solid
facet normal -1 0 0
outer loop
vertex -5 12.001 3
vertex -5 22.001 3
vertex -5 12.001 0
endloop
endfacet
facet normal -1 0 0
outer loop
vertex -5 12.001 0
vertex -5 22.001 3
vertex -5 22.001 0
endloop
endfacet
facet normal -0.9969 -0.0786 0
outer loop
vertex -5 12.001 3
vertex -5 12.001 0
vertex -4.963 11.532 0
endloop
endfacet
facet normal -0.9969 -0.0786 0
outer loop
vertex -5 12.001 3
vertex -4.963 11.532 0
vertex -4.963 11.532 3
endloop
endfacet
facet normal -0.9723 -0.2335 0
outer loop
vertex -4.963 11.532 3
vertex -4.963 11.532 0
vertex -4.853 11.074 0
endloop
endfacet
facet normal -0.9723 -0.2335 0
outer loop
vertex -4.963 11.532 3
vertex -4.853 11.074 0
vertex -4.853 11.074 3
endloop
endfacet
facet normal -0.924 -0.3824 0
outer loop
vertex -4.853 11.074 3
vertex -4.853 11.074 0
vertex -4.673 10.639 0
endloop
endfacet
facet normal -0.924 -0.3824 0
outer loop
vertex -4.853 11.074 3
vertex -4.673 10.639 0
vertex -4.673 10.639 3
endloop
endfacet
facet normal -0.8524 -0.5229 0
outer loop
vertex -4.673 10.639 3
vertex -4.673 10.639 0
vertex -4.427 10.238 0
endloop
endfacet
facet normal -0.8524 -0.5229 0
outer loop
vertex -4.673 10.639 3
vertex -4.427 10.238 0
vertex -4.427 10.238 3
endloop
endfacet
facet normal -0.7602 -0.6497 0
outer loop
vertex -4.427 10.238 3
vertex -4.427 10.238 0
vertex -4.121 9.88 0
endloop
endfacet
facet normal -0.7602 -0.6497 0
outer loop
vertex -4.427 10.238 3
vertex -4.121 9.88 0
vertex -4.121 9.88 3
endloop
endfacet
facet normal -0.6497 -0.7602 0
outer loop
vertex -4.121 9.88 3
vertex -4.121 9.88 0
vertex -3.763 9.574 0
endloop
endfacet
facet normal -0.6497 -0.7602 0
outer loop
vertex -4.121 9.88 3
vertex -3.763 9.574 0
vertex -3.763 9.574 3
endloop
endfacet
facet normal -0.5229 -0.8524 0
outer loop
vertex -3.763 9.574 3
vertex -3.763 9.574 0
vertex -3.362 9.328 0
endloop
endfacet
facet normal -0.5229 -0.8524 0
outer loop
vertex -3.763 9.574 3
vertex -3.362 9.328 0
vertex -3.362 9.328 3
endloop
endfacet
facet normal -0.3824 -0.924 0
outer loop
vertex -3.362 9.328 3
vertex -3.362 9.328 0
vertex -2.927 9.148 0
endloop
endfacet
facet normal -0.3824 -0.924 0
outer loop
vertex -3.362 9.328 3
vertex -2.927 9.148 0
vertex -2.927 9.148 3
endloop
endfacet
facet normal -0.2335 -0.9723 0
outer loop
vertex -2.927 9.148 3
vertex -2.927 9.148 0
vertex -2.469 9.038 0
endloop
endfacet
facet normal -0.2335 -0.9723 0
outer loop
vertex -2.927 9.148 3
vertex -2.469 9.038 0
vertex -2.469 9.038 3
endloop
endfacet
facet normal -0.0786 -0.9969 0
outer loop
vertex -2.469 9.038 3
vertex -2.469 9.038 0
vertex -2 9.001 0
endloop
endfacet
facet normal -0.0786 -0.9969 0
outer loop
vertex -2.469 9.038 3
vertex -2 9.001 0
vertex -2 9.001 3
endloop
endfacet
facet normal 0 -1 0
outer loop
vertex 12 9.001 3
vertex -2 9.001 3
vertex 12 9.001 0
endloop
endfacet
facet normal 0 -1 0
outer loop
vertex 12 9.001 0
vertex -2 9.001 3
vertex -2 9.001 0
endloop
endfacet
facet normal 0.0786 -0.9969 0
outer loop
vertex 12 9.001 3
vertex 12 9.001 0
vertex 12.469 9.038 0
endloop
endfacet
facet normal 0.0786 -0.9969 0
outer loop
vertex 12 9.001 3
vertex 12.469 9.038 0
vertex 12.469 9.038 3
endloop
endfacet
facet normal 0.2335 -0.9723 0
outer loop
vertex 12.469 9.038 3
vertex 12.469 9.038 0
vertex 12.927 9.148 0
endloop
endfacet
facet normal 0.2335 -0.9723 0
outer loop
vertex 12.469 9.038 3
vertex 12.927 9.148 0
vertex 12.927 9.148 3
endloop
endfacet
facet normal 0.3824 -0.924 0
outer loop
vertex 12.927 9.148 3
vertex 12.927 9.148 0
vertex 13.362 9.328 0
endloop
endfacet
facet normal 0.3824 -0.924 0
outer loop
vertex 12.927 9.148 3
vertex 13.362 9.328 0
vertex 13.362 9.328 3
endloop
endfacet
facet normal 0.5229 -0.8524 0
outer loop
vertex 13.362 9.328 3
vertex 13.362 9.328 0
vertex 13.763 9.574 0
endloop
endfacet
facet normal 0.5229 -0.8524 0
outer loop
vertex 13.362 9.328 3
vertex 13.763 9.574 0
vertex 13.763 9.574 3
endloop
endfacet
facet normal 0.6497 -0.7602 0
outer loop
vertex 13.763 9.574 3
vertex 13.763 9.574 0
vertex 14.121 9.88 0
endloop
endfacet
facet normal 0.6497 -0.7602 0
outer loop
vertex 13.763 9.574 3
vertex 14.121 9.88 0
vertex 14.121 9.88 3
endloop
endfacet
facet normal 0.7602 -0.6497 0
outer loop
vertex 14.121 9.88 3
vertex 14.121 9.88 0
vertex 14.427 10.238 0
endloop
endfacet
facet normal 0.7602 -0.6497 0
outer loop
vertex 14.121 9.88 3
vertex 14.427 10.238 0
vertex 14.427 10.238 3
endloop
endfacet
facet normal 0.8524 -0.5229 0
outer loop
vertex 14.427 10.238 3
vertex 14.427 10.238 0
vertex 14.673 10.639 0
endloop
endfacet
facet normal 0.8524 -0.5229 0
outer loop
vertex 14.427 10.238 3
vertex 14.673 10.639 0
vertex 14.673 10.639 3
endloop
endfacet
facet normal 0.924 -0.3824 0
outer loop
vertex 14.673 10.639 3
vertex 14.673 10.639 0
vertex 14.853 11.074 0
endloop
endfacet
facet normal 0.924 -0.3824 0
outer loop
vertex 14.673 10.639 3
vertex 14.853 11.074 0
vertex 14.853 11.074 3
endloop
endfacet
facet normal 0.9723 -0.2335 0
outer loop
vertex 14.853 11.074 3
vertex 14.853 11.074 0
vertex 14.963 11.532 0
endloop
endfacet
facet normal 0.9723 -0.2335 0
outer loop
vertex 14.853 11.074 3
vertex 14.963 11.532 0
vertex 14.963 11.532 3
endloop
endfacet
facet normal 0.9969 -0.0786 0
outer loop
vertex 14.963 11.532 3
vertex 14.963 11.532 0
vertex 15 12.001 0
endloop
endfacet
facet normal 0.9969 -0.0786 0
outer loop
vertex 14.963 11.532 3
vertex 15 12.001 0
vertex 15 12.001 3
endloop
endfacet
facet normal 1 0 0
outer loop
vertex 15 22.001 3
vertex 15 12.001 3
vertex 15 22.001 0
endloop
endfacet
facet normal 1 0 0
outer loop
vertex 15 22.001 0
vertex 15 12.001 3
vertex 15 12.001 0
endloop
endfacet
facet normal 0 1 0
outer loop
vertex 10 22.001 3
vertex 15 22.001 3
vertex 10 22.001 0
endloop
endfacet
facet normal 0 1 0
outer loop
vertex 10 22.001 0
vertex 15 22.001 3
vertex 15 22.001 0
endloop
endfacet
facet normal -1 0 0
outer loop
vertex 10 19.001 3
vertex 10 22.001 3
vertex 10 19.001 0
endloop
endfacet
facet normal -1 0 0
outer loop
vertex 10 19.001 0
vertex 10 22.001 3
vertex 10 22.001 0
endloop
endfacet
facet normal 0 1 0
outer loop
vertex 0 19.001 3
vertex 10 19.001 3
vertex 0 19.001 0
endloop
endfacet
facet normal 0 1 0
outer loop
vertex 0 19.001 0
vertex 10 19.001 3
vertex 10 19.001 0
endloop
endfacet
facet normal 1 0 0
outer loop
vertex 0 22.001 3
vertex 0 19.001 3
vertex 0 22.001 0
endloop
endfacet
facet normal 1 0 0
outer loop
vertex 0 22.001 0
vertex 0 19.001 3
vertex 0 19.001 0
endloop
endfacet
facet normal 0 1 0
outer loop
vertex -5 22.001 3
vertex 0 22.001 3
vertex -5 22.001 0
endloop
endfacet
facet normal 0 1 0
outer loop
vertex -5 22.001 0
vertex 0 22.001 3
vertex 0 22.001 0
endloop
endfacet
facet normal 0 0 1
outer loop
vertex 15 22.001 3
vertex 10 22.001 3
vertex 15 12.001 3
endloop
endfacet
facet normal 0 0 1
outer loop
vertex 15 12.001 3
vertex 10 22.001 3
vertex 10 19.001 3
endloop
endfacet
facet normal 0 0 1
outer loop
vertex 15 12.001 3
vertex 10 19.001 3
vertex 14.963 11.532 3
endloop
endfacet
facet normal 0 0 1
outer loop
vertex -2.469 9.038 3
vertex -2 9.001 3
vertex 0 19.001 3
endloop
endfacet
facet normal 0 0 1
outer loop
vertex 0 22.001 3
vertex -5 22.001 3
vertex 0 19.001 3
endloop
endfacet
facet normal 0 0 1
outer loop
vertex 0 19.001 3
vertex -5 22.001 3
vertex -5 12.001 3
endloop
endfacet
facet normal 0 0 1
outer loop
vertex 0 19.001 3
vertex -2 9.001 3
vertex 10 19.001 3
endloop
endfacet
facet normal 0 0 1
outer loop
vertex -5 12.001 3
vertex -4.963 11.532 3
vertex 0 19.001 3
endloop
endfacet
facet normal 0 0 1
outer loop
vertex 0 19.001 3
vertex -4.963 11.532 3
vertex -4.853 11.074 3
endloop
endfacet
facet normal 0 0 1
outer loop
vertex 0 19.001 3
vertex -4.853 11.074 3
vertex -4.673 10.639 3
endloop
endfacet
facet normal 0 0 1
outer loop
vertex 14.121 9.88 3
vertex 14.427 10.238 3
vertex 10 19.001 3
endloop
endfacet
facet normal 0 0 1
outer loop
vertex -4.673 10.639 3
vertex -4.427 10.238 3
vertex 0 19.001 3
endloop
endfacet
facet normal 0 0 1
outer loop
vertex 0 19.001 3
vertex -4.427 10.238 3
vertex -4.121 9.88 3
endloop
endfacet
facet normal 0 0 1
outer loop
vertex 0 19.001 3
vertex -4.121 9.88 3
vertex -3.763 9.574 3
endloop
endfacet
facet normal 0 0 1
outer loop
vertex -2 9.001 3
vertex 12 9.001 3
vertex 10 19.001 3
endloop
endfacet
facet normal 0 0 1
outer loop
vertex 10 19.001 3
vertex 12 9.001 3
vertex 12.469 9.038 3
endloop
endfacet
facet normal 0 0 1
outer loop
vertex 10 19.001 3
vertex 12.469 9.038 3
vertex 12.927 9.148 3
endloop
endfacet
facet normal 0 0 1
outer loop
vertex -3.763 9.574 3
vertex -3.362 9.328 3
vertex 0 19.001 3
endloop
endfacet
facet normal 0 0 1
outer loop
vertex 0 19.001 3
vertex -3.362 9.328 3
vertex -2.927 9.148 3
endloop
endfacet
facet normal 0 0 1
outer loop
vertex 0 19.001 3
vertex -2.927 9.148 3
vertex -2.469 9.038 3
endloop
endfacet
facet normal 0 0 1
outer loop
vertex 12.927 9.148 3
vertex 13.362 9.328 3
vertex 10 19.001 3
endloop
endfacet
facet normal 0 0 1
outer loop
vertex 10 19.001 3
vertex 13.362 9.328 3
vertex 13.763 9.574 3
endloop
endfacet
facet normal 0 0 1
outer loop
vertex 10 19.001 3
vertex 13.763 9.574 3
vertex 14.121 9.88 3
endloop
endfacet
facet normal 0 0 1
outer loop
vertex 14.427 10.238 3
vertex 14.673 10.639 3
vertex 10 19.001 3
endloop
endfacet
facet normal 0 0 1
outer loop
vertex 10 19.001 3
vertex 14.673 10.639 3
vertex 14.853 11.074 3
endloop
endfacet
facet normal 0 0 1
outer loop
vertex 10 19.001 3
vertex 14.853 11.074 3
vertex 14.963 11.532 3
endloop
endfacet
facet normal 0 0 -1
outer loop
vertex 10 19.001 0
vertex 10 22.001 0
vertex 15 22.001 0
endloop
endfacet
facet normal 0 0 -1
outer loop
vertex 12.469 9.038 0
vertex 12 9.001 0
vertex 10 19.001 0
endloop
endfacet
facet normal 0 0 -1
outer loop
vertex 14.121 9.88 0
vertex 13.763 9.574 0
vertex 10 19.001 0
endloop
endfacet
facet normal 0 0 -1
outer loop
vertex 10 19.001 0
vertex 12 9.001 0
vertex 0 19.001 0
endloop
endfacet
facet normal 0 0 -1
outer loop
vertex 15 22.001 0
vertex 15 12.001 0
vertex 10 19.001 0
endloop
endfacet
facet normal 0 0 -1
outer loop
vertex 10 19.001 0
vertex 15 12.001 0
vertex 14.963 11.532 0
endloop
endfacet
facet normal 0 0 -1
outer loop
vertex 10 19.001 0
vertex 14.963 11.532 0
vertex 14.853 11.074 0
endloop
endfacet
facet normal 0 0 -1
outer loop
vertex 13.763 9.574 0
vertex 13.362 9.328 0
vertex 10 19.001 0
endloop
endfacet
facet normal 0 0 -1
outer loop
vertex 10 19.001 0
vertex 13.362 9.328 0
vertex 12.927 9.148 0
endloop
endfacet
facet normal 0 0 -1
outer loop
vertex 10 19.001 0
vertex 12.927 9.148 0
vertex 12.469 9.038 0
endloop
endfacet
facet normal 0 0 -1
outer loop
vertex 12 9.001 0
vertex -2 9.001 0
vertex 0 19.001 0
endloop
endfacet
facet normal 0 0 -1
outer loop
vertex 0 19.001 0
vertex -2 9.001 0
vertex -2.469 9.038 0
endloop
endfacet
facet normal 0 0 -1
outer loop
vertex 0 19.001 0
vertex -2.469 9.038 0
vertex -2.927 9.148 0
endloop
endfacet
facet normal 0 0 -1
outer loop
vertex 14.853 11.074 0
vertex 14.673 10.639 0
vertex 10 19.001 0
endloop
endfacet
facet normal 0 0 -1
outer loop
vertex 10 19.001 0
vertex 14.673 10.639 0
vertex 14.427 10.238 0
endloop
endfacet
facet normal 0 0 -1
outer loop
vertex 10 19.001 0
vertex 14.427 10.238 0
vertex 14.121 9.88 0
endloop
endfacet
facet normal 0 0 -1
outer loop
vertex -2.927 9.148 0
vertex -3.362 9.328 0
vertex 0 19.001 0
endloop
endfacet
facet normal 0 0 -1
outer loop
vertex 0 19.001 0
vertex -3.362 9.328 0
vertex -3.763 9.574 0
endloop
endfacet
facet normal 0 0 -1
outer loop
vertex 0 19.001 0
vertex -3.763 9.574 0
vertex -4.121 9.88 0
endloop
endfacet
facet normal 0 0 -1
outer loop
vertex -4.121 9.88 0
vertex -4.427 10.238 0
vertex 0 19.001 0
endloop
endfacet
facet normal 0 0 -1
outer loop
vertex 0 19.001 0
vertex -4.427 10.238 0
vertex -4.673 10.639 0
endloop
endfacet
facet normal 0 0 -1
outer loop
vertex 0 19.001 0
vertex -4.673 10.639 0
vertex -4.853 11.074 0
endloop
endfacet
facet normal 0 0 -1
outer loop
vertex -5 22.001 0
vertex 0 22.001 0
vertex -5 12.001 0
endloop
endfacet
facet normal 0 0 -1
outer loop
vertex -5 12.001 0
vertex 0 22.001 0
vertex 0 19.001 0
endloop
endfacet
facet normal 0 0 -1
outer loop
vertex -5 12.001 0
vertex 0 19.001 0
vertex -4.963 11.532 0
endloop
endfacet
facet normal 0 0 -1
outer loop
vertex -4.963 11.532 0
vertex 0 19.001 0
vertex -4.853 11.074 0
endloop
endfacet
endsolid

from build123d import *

# Parameters (mm, degrees)
SALIENTE_EXTRUIR1_DEPTH = 3


with BuildPart() as part:
    # Croquis1 → Saliente-Extruir1 (new body)
    with BuildSketch(Plane.XY):
        with BuildLine():
            Line((0, 22.001027223), (-5, 22.001027223))
            Line((-5, 22.001027223), (-5, 12.001027223))
            ThreePointArc((-5, 12.001027223), (-4.121320344, 9.87970688), (-2, 9.001027223))
            Line((-2, 9.001027223), (12, 9.001027223))
            ThreePointArc((12, 9.001027223), (14.121320344, 9.87970688), (15, 12.001027223))
            Line((15, 12.001027223), (15, 22.001027223))
            Line((15, 22.001027223), (10, 22.001027223))
            Line((10, 22.001027223), (10, 19.001027223))
            Line((10, 19.001027223), (0, 19.001027223))
            Line((0, 19.001027223), (0, 22.001027223))
        make_face()
    extrude(amount=SALIENTE_EXTRUIR1_DEPTH)


solid = part.part
